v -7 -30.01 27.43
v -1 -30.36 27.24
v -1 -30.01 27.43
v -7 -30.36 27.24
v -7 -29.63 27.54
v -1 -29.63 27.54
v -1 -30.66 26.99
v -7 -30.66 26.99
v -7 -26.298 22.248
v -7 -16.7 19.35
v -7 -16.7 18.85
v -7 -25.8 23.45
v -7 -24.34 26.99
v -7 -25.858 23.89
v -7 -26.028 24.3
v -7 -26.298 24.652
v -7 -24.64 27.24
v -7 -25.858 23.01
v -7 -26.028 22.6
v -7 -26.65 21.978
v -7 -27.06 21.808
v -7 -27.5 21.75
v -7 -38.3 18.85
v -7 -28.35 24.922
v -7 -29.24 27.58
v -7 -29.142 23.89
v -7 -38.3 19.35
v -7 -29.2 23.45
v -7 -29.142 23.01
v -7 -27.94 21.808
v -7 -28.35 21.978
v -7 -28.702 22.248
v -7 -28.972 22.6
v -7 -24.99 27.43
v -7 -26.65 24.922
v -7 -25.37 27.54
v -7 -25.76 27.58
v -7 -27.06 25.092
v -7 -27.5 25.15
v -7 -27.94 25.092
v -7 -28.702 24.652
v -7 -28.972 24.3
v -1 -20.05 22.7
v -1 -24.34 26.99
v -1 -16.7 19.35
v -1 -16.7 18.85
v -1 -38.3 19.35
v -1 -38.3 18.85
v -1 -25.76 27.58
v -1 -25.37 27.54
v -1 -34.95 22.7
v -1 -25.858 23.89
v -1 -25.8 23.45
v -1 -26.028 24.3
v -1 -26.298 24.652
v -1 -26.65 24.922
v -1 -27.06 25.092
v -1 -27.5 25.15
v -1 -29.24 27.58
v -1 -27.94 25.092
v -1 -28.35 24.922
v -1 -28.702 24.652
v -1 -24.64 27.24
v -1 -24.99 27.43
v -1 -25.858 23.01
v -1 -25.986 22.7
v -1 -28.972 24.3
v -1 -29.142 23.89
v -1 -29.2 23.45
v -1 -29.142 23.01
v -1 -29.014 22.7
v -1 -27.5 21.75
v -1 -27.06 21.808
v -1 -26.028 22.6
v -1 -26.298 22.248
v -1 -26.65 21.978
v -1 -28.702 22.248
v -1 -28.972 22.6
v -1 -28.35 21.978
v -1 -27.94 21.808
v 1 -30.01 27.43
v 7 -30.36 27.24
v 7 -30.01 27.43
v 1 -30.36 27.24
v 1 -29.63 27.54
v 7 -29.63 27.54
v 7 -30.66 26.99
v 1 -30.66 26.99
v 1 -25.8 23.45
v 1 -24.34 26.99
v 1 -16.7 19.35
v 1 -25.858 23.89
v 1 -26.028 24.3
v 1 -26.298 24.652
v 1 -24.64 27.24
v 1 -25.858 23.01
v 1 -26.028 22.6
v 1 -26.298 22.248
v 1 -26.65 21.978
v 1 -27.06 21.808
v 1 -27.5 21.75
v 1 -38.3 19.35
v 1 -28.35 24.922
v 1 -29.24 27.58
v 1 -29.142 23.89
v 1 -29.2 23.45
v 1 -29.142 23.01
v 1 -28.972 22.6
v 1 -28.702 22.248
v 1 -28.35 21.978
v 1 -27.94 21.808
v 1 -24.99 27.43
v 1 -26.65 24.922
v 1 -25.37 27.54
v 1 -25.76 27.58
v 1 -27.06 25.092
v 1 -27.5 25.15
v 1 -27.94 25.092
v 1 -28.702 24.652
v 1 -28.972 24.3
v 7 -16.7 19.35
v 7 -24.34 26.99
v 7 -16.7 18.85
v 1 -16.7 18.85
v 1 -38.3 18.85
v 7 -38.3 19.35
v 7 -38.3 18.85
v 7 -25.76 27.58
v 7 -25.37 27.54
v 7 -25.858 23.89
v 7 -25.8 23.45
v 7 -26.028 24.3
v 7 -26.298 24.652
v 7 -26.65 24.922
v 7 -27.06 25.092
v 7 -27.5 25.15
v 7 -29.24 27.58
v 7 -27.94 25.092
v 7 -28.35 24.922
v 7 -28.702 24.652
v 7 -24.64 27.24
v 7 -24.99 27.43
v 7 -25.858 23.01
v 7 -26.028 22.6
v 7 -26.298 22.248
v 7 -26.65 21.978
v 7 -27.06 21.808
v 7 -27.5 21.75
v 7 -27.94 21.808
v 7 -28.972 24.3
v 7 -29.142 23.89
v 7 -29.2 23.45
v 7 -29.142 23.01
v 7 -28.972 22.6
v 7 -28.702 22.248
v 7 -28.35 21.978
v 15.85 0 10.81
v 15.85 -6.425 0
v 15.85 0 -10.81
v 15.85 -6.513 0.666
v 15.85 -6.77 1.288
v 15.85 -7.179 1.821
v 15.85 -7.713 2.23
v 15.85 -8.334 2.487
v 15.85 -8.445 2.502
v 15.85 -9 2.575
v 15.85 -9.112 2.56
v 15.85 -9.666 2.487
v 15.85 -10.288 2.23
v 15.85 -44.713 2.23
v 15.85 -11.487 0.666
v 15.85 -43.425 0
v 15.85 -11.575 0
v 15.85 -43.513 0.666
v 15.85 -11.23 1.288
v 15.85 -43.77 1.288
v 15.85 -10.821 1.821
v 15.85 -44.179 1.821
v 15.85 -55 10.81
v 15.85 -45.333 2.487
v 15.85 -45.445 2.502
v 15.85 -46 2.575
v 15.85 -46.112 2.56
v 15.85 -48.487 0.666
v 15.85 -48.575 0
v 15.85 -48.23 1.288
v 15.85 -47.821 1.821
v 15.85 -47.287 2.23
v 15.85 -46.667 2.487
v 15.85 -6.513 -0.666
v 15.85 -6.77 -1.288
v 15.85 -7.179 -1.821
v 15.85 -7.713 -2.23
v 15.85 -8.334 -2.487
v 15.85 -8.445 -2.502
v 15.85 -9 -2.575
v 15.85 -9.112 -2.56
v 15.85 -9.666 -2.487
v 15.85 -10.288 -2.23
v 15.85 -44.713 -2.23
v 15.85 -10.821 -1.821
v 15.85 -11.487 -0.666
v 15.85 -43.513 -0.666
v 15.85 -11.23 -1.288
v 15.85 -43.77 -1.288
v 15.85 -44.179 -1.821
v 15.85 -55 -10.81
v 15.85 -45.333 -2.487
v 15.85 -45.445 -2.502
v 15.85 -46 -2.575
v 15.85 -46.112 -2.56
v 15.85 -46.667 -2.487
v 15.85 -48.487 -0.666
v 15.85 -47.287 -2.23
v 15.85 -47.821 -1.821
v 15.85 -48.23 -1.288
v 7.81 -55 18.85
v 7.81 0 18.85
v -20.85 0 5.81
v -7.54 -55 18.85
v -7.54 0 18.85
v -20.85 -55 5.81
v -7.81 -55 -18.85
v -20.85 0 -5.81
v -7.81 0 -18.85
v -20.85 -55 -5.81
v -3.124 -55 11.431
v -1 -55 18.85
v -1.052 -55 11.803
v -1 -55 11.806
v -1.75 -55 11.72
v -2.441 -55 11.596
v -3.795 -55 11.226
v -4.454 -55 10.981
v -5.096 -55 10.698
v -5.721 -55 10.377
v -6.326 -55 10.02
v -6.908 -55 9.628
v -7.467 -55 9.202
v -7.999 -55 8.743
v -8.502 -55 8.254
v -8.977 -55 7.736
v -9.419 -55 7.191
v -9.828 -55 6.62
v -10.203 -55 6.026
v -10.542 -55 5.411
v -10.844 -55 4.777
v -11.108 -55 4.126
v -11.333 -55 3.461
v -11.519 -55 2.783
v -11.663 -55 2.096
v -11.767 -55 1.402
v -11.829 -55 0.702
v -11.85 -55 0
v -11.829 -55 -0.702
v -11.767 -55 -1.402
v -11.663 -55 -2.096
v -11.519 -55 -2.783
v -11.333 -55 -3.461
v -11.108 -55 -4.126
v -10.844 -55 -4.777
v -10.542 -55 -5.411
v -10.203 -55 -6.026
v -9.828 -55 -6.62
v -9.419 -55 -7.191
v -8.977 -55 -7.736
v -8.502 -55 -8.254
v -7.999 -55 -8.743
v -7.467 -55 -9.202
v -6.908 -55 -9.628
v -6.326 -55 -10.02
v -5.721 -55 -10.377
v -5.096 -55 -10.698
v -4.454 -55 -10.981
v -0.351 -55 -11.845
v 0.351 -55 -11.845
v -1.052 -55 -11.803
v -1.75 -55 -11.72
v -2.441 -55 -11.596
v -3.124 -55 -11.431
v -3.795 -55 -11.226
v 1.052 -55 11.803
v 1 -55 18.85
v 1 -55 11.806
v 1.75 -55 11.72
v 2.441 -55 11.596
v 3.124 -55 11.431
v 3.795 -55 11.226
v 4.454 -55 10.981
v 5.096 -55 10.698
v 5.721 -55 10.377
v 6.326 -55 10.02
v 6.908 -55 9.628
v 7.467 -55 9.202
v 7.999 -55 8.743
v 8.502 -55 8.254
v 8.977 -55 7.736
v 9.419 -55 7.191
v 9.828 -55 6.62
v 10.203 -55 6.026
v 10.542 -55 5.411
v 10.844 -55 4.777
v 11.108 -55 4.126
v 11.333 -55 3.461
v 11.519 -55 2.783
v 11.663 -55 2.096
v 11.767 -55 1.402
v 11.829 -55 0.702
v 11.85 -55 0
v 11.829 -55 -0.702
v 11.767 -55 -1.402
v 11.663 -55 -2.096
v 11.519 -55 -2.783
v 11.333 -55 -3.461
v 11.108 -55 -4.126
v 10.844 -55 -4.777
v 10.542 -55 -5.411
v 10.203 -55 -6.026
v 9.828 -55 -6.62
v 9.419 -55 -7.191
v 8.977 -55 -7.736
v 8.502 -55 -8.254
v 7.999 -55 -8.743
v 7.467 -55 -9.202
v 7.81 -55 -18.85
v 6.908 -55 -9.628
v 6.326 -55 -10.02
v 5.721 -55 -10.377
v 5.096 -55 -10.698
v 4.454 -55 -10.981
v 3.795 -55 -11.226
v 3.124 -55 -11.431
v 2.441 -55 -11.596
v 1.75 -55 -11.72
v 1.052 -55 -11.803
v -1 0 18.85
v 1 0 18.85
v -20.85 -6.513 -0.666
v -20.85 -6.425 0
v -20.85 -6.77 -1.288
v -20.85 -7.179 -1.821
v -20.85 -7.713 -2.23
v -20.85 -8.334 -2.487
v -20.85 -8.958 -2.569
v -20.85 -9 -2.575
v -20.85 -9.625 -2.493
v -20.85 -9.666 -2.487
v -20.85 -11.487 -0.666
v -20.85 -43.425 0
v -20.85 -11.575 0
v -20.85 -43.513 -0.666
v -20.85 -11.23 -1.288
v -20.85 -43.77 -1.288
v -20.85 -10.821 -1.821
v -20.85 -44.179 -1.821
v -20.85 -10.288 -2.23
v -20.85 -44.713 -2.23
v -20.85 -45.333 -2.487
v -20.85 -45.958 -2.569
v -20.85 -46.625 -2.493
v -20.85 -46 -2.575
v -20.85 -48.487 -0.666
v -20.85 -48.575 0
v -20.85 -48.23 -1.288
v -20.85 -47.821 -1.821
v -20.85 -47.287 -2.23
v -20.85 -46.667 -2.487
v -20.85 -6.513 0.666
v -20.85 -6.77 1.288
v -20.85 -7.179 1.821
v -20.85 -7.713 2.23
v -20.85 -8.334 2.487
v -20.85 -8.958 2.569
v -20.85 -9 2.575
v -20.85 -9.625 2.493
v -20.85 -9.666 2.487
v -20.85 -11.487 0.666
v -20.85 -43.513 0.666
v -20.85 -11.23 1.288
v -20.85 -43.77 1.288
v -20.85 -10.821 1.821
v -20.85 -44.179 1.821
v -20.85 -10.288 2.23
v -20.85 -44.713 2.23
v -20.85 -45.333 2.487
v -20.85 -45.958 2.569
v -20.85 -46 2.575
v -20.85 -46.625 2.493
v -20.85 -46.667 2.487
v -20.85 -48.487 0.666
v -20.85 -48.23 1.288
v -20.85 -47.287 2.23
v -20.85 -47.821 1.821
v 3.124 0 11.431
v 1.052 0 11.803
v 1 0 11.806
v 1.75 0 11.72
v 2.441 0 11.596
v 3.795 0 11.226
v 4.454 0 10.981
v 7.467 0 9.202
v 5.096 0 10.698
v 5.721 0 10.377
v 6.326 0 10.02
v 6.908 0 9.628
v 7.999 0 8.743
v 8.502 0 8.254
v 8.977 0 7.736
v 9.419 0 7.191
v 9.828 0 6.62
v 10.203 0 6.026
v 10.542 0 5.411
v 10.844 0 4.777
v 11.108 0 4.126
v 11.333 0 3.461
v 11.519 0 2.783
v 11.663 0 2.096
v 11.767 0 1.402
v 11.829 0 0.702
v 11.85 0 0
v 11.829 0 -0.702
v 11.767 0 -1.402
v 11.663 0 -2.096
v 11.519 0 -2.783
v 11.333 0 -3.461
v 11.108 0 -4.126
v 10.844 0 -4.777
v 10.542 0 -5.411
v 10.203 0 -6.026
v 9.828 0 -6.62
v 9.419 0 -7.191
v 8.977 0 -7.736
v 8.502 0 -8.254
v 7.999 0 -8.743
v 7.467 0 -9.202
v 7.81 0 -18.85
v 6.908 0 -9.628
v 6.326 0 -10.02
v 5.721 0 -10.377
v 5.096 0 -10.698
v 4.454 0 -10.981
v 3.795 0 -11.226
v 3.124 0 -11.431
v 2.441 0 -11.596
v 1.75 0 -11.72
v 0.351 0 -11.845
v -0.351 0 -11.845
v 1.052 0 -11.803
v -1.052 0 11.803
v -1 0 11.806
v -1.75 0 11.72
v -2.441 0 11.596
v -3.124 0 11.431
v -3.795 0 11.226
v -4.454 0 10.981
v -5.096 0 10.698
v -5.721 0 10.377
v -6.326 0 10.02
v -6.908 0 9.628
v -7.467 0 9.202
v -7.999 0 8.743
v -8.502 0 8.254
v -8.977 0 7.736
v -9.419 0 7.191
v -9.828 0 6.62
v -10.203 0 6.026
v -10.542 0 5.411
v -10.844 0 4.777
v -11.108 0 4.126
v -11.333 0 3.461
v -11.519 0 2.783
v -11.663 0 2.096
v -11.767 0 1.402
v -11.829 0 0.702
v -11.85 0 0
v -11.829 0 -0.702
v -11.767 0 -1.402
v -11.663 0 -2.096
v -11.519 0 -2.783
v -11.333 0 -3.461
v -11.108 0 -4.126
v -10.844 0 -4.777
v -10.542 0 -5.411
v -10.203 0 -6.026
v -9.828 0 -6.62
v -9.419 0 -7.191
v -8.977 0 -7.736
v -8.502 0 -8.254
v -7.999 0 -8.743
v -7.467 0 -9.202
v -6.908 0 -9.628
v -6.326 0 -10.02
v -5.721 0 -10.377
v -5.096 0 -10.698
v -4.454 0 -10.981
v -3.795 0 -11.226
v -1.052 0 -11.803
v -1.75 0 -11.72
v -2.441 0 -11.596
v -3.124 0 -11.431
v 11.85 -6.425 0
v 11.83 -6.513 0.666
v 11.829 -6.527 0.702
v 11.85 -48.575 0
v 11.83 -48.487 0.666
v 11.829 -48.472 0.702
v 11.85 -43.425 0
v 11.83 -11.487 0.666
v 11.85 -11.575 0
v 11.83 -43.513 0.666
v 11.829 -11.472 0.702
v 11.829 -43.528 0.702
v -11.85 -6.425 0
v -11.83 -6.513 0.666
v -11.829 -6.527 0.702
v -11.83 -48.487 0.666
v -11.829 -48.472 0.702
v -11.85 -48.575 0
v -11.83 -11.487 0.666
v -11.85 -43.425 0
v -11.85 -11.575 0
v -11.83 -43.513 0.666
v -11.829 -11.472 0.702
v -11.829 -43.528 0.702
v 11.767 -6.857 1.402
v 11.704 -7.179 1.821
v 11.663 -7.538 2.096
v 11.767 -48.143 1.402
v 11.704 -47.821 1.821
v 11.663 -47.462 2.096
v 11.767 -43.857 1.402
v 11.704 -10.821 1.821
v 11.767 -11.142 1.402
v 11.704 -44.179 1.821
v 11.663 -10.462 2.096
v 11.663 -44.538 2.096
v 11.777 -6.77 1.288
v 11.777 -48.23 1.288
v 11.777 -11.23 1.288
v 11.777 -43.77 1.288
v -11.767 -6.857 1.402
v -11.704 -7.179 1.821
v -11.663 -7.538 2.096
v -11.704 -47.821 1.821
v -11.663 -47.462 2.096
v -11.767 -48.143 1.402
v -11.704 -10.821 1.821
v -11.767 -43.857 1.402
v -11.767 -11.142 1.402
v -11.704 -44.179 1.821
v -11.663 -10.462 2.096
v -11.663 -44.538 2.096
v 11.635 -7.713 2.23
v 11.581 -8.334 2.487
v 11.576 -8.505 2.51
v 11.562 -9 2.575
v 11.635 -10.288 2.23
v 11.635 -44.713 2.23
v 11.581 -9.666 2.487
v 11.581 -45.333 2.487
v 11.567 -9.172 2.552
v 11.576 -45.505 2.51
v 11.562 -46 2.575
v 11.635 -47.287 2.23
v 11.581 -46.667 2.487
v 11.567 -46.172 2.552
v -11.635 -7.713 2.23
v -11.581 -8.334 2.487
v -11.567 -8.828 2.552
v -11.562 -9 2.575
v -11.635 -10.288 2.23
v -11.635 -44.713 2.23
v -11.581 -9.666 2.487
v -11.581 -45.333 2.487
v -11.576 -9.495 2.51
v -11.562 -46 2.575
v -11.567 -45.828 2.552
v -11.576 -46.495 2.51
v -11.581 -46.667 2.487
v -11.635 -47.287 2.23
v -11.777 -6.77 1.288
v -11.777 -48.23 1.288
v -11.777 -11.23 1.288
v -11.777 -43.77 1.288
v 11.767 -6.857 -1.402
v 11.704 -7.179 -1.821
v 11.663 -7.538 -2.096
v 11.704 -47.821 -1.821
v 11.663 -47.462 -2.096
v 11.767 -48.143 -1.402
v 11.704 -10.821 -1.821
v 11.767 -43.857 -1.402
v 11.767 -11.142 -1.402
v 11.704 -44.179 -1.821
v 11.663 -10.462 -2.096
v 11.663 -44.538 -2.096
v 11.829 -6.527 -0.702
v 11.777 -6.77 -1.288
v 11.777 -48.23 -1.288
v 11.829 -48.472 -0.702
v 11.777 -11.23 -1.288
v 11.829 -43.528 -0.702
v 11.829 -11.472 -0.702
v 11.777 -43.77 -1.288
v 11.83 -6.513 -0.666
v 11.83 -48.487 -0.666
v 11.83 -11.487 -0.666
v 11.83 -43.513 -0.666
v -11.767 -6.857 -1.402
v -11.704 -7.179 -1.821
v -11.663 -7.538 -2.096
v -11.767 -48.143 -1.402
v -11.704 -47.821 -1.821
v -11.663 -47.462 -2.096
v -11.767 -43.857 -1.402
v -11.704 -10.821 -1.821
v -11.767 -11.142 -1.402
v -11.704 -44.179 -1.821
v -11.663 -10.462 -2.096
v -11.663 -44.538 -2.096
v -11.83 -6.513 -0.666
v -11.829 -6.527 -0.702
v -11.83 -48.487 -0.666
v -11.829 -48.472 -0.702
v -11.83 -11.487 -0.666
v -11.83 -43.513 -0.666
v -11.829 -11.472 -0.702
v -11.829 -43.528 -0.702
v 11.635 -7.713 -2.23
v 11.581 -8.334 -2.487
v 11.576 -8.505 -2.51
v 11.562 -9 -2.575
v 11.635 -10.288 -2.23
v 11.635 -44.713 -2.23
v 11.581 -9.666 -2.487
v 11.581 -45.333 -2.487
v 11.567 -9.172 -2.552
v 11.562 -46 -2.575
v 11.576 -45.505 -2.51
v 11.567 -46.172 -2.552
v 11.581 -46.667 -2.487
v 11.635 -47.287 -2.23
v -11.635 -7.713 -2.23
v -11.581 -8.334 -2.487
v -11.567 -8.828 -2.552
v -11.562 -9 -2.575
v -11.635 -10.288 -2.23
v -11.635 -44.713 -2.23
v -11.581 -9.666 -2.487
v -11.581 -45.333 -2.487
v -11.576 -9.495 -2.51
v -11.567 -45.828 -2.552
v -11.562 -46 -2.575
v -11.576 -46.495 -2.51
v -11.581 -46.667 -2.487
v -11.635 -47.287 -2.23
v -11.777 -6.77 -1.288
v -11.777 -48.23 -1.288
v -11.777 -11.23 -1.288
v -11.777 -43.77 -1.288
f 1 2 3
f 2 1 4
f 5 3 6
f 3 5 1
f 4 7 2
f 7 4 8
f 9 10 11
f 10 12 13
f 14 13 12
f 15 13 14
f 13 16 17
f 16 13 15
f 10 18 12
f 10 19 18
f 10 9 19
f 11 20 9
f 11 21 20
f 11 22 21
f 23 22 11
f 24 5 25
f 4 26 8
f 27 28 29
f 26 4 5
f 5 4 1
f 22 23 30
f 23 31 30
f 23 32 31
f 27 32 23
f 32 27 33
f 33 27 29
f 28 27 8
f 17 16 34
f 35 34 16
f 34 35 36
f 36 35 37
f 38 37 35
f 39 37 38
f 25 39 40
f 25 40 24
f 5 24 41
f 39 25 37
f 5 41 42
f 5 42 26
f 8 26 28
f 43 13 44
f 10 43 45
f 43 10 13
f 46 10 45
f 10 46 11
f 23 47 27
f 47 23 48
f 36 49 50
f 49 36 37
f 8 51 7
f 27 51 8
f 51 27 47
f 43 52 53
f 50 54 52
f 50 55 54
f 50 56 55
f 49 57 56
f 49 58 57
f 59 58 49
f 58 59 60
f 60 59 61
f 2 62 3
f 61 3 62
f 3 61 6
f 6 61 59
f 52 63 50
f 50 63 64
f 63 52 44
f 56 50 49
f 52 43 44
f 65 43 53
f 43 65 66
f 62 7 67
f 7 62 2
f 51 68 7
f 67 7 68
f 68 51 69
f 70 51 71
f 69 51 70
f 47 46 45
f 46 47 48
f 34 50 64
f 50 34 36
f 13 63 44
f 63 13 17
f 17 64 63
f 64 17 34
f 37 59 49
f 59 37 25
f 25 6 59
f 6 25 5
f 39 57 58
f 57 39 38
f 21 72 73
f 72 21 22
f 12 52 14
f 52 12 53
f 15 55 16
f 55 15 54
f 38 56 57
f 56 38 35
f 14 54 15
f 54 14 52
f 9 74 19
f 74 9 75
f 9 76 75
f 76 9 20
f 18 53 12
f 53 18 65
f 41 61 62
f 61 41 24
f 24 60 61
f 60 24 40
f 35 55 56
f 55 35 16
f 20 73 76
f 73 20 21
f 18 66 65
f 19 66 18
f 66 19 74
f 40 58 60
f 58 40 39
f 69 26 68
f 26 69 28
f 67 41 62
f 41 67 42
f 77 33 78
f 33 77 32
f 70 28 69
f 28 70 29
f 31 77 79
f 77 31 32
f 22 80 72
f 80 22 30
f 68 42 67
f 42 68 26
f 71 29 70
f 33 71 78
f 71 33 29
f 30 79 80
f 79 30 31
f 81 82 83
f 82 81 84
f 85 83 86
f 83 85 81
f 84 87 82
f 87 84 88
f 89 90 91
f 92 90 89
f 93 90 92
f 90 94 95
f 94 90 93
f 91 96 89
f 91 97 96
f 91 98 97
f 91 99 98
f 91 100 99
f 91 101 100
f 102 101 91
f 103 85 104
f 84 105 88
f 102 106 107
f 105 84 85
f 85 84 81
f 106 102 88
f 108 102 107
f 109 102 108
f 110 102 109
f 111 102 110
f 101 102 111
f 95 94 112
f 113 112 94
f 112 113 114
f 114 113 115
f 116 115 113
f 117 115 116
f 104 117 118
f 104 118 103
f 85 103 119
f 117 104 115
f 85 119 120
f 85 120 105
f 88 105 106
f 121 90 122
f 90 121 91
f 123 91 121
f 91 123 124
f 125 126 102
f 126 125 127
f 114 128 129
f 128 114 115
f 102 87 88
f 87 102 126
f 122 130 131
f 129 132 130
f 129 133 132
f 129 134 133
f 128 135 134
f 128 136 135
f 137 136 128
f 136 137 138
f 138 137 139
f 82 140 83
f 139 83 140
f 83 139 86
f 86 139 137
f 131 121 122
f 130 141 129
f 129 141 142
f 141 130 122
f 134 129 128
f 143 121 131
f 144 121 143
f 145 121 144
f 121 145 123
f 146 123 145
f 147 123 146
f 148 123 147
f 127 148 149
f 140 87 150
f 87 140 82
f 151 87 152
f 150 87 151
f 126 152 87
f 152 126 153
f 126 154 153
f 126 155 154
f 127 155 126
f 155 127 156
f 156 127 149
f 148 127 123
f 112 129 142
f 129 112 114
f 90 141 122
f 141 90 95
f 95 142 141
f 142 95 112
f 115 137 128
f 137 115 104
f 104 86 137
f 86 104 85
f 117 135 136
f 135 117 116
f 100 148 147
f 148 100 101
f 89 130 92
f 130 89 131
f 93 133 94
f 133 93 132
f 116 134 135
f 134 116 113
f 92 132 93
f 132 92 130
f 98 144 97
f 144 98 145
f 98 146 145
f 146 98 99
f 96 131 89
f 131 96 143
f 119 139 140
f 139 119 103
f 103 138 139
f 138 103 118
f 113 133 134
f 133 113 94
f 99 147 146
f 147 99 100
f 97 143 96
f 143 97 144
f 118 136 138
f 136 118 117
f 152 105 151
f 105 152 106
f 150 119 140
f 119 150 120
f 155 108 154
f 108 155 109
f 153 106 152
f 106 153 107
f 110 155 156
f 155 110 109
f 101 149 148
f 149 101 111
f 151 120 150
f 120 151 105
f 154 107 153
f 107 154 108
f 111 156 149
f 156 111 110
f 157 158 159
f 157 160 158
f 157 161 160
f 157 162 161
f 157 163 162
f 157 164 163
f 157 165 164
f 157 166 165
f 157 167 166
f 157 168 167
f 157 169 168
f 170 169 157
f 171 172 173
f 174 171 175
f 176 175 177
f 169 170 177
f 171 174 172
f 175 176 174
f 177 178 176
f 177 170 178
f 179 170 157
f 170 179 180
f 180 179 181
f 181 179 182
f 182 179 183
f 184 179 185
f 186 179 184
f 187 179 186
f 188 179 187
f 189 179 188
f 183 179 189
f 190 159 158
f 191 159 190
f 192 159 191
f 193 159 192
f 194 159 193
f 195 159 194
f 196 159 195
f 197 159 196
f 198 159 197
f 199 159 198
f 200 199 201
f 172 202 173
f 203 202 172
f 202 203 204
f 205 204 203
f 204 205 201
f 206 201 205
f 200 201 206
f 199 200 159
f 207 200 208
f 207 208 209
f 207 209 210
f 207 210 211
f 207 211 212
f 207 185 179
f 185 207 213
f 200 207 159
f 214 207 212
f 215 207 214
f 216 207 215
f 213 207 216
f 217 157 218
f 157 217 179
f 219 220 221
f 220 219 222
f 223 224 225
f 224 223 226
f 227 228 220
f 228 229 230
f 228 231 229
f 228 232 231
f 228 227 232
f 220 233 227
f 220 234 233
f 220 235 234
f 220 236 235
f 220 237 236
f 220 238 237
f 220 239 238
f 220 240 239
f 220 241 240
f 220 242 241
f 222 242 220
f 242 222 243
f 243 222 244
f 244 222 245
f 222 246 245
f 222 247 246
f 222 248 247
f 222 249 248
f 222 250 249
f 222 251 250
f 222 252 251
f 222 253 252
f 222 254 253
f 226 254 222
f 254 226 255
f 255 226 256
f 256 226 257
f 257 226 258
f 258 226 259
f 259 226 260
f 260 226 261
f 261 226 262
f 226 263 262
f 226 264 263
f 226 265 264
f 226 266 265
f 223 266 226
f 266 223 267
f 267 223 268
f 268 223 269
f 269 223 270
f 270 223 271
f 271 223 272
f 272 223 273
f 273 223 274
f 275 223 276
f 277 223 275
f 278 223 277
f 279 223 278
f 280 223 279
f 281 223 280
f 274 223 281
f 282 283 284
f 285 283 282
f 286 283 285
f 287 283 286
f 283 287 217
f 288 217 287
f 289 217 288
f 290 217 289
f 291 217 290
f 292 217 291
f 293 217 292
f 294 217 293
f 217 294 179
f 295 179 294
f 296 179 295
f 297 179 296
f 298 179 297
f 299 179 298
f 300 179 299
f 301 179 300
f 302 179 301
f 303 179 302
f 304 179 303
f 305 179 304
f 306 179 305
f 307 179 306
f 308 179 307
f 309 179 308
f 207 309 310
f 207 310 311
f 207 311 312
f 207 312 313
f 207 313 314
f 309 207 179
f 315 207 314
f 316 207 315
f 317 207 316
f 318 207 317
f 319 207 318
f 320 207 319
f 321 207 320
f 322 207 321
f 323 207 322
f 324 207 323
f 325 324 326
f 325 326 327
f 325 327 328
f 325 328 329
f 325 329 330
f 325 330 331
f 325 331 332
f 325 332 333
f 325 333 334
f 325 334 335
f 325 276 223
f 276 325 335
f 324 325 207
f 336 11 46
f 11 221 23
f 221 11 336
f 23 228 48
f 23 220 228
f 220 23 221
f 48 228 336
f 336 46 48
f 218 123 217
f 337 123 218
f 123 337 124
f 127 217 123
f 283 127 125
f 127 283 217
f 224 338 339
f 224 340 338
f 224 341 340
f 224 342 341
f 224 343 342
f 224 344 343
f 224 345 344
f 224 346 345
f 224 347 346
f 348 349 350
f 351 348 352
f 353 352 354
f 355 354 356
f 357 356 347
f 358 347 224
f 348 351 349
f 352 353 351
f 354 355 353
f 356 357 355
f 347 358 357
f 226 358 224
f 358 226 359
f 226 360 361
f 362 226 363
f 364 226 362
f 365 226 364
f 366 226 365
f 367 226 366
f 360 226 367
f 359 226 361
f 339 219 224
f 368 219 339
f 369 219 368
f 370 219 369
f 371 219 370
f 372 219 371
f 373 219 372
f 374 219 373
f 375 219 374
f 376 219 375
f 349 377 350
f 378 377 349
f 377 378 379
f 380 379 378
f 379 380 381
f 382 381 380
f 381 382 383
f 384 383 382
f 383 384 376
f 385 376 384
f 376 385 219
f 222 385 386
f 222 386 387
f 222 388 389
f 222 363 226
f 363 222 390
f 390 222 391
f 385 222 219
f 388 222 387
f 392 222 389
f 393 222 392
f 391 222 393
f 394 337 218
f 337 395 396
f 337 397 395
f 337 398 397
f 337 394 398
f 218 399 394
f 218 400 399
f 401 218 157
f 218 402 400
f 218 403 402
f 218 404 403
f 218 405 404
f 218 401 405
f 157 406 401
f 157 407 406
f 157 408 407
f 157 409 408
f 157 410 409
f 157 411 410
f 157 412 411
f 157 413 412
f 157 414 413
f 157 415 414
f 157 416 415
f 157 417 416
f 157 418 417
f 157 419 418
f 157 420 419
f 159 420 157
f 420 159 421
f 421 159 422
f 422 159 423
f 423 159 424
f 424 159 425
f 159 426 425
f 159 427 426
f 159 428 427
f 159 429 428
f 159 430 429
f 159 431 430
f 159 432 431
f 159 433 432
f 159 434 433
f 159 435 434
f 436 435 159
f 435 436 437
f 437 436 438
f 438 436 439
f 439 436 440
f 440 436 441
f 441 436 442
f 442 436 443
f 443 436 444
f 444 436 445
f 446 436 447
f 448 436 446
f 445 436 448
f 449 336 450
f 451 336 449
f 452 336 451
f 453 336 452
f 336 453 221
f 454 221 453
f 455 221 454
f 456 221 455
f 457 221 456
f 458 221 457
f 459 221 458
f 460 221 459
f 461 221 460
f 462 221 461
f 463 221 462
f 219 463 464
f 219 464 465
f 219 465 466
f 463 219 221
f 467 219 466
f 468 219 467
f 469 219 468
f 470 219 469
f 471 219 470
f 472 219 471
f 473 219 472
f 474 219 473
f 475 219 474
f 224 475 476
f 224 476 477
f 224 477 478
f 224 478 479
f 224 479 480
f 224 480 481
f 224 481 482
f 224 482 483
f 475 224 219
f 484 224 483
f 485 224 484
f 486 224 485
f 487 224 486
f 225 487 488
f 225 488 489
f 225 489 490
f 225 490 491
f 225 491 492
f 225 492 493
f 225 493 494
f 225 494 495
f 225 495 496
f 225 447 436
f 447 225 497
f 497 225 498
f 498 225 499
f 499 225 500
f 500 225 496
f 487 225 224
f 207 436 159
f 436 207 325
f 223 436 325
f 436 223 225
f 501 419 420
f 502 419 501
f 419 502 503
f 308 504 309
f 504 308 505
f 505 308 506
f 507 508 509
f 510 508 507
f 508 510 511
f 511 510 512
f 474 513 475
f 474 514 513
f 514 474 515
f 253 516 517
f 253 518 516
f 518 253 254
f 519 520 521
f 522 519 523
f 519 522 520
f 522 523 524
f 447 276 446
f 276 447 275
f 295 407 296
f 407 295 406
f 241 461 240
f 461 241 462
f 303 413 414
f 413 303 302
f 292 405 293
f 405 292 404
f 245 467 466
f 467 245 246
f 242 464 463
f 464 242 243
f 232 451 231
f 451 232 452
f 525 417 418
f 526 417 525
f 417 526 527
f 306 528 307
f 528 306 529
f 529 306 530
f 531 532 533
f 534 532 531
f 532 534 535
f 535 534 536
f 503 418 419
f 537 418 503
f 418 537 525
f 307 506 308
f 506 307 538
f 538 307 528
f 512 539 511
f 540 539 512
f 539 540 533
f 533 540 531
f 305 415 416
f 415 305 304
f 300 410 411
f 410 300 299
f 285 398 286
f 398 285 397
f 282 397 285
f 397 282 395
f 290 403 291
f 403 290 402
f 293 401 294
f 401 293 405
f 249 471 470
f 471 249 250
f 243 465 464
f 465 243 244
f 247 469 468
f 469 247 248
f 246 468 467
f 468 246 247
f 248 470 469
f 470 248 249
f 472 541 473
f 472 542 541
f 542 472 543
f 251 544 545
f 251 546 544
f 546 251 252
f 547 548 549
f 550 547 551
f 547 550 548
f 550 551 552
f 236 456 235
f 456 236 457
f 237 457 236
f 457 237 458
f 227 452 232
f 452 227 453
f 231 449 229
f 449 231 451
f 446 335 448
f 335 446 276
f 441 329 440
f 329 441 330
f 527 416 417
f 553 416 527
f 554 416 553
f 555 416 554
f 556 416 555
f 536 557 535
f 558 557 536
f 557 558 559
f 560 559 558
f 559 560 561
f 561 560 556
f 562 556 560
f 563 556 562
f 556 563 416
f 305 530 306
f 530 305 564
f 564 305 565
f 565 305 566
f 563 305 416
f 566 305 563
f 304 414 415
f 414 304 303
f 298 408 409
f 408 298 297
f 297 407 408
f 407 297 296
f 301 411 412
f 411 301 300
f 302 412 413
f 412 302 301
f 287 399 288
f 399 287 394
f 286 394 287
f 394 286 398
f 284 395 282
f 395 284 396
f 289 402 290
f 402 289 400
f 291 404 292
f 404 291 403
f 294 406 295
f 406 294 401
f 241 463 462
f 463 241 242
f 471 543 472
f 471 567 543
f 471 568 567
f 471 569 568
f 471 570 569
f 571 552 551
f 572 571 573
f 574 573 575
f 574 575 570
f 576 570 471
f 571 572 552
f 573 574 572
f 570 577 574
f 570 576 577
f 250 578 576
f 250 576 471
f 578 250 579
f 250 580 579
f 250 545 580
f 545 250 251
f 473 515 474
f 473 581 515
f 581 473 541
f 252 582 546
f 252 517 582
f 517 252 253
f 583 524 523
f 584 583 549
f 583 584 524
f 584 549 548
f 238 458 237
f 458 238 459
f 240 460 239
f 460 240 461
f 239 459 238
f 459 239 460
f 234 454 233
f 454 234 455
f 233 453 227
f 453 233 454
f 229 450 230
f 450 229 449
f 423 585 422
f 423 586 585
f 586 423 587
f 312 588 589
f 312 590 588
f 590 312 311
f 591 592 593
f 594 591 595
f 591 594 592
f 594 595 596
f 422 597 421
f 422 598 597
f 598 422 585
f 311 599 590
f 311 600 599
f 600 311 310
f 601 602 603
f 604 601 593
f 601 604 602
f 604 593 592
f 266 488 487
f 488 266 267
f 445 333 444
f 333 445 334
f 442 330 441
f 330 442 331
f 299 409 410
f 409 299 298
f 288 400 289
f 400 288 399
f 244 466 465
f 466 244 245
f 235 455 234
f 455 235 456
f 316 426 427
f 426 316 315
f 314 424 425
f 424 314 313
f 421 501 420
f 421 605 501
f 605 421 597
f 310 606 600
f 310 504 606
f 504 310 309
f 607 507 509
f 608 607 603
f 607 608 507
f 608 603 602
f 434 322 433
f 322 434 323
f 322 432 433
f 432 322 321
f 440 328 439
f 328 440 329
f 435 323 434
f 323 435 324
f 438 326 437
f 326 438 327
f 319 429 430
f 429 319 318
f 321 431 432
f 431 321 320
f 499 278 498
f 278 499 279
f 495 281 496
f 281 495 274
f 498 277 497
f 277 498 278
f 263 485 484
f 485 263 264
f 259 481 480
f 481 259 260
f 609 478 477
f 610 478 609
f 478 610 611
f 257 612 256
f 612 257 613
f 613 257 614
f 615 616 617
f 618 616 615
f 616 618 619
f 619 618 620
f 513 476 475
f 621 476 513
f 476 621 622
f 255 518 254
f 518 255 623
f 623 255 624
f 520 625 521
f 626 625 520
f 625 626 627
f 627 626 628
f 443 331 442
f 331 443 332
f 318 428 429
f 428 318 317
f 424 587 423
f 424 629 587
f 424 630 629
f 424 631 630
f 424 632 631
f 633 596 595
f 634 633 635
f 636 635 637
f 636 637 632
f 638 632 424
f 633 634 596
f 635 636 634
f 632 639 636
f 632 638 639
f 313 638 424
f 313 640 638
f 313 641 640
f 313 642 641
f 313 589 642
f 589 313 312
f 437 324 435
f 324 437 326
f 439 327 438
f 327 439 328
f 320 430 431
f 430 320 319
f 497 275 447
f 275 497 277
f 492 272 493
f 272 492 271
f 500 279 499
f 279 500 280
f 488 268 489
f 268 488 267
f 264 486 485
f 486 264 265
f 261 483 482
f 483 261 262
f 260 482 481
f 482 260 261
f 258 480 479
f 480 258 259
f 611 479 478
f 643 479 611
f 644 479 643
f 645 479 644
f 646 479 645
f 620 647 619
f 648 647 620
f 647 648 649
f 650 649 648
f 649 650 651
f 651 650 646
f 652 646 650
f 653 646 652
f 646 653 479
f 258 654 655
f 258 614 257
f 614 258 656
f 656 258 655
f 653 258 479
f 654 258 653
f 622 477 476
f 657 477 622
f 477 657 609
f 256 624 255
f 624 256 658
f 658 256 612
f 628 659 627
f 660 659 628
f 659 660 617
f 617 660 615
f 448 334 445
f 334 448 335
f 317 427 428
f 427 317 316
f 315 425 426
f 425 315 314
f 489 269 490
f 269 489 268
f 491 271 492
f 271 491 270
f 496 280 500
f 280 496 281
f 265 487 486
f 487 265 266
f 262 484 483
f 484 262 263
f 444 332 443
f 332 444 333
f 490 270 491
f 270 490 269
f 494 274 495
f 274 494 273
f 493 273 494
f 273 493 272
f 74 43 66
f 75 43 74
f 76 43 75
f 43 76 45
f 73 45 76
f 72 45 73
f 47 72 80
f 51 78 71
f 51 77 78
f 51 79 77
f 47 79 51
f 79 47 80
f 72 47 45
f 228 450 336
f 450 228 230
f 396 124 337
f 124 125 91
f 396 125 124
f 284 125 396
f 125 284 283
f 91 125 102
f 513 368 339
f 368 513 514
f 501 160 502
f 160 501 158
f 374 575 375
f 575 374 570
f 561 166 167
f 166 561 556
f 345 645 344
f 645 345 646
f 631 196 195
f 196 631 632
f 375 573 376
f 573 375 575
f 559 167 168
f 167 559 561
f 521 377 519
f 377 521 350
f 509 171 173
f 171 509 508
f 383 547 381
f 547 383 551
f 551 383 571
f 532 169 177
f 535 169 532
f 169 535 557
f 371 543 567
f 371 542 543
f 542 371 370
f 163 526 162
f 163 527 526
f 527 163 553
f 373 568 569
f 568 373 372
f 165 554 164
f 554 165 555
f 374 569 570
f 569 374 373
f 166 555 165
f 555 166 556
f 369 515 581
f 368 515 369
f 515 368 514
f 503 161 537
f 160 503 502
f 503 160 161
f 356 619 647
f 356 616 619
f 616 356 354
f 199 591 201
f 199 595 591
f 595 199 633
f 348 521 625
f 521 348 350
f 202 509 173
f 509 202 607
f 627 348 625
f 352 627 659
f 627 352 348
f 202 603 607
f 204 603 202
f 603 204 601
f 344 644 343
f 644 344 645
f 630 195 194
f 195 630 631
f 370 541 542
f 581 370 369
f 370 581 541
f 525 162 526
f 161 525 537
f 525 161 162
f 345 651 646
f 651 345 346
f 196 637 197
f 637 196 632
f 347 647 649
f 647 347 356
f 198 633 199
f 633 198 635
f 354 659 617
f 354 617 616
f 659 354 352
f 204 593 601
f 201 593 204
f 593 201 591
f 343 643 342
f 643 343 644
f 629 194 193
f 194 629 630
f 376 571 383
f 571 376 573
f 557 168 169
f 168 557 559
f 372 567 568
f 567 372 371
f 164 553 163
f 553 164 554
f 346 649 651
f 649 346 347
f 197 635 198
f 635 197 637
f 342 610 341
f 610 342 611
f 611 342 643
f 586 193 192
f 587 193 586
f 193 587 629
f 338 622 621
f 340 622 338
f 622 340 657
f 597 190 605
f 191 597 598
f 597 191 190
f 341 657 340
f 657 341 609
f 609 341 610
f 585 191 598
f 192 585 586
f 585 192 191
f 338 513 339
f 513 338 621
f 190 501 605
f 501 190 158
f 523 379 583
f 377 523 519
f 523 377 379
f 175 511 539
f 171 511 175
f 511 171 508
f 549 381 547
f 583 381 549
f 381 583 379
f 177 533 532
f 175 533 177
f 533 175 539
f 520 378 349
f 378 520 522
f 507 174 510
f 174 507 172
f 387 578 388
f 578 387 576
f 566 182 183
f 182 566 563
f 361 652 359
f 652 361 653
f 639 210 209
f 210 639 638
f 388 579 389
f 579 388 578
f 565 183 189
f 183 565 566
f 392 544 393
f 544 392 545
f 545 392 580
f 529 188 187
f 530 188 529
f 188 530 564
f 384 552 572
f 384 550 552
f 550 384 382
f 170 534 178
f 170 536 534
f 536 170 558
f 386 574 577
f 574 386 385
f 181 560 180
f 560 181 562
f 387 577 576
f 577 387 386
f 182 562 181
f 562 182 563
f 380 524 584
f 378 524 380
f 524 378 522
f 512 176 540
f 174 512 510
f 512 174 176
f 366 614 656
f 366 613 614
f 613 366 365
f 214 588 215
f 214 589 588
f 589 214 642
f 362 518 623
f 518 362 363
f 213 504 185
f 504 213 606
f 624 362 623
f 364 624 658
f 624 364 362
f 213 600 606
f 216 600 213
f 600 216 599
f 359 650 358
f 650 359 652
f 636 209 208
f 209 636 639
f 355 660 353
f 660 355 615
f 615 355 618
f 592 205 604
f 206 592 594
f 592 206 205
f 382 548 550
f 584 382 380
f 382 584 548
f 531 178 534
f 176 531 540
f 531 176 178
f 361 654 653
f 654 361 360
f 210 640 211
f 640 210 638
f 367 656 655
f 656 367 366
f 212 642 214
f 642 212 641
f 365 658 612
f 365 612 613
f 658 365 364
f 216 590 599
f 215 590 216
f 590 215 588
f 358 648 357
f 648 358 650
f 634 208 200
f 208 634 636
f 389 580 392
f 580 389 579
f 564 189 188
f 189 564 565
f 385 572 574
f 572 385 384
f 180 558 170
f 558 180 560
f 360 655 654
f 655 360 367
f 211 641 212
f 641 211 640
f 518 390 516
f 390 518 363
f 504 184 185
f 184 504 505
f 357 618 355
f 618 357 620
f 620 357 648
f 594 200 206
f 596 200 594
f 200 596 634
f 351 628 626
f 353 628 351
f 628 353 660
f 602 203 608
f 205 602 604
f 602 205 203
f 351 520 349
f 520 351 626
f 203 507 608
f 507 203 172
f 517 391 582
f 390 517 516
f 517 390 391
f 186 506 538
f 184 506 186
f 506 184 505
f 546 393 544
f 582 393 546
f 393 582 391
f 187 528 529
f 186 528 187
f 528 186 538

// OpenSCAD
//Drill guide for drilling holes in 3/4" EMT
//I used a drill press for better accuracy
//By: David Bunch 10/24/2015

Pipe_Spacing = 37;     //gives 6mm clearance top & bottom of 86mm high vertex
                        //We Need 45mm to put Pipe Tensioning mount in vertically
Pipe_SpaceHalf = Pipe_Spacing / 2;
MinkSub = 0;            //use 4 of using minkowski
Len=37.7-MinkSub;
Wid=37.7-MinkSub;
TotWid = 37.7;
Len_Half = Len / 2;
Wid_Half = Wid /2;
TotHt = 55;
Ht = TotHt-MinkSub;

Ht_2 = TotHt / 2;

EMT_OD=23.7;
EMT_Res = 106;
M3 = 3.4;
M5 = 5.15;
$fn=24;
M3_ires=24;
M3NutDia=9.18;

M3Nut_Ht=4.7;
RotNut=30;
module DrHole()
{
    rotate([0,90,0])
    cylinder(d=M5,h=Len+10,center=true);
}
module Plate()
{
    rotate([0,0,90])
    linear_extrude(height = Ht, center = false, convexity = 10)polygon(points = 

    [[-18.85,-7.81],[-10.81,-15.85],[10.81,-15.85],
    [18.85,-7.81],[18.85,7.54],[5.81,20.85],
    [-5.81,20.85],[-18.85,7.81]]);
}
module PipeConnectSngl()
{
    Plate();
}
module EMT_Nut()
{
    translate([-1,TotWid/2+.5,Ht_2])
    rotate([-90,0,0])
    rotate([0,-90,0])
    difference()
    {
        linear_extrude(height = 6, center = false, convexity = 10)polygon(points = 
        [[8.23,-1.74],[8.23,1.74],[8.19,2.13],[8.08,2.51],[7.89,2.86],
        [7.64,3.16],[0,10.8],[-0.86,10.8],[-0.86,-10.8],[0,-10.8],
        [7.64,-3.16],[7.89,-2.86],[8.08,-2.51],[8.19,-2.13]]);
        translate([4.1,0,-1])
        cylinder(d=M3,h=8,$fn=24);
    }
        translate([-1,TotWid/2+.5,Ht_2])
    rotate([-90,0,0])
    rotate([0,-90,0])
    translate([4.1,0,-1])
    rotate([0,0,30])
    %cylinder(d=M3NutDia,h=8,$fn=6);
}
module EMT_NutsSide()
{
    EMT_Nut();
    translate([8,0,0])
    EMT_Nut();
}
module PipeSlots()
{
    translate([-1,-1,-1])
    cube([2,EMT_OD,Ht+20]);
}
module Pipes()
{
    translate([0,0,-1])
    cylinder(d=EMT_OD,h=100,$fn=EMT_Res);
}
module DrawFinal()
{
    difference()
    {
        union()
        {
            PipeConnectSngl();
            EMT_NutsSide();
        }
        Pipes();

        PipeSlots();
        translate([0,0,9])
        DrHole();
        translate([0,0,46])
        DrHole();

    }
}
rotate([90,0,0])
DrawFinal();
